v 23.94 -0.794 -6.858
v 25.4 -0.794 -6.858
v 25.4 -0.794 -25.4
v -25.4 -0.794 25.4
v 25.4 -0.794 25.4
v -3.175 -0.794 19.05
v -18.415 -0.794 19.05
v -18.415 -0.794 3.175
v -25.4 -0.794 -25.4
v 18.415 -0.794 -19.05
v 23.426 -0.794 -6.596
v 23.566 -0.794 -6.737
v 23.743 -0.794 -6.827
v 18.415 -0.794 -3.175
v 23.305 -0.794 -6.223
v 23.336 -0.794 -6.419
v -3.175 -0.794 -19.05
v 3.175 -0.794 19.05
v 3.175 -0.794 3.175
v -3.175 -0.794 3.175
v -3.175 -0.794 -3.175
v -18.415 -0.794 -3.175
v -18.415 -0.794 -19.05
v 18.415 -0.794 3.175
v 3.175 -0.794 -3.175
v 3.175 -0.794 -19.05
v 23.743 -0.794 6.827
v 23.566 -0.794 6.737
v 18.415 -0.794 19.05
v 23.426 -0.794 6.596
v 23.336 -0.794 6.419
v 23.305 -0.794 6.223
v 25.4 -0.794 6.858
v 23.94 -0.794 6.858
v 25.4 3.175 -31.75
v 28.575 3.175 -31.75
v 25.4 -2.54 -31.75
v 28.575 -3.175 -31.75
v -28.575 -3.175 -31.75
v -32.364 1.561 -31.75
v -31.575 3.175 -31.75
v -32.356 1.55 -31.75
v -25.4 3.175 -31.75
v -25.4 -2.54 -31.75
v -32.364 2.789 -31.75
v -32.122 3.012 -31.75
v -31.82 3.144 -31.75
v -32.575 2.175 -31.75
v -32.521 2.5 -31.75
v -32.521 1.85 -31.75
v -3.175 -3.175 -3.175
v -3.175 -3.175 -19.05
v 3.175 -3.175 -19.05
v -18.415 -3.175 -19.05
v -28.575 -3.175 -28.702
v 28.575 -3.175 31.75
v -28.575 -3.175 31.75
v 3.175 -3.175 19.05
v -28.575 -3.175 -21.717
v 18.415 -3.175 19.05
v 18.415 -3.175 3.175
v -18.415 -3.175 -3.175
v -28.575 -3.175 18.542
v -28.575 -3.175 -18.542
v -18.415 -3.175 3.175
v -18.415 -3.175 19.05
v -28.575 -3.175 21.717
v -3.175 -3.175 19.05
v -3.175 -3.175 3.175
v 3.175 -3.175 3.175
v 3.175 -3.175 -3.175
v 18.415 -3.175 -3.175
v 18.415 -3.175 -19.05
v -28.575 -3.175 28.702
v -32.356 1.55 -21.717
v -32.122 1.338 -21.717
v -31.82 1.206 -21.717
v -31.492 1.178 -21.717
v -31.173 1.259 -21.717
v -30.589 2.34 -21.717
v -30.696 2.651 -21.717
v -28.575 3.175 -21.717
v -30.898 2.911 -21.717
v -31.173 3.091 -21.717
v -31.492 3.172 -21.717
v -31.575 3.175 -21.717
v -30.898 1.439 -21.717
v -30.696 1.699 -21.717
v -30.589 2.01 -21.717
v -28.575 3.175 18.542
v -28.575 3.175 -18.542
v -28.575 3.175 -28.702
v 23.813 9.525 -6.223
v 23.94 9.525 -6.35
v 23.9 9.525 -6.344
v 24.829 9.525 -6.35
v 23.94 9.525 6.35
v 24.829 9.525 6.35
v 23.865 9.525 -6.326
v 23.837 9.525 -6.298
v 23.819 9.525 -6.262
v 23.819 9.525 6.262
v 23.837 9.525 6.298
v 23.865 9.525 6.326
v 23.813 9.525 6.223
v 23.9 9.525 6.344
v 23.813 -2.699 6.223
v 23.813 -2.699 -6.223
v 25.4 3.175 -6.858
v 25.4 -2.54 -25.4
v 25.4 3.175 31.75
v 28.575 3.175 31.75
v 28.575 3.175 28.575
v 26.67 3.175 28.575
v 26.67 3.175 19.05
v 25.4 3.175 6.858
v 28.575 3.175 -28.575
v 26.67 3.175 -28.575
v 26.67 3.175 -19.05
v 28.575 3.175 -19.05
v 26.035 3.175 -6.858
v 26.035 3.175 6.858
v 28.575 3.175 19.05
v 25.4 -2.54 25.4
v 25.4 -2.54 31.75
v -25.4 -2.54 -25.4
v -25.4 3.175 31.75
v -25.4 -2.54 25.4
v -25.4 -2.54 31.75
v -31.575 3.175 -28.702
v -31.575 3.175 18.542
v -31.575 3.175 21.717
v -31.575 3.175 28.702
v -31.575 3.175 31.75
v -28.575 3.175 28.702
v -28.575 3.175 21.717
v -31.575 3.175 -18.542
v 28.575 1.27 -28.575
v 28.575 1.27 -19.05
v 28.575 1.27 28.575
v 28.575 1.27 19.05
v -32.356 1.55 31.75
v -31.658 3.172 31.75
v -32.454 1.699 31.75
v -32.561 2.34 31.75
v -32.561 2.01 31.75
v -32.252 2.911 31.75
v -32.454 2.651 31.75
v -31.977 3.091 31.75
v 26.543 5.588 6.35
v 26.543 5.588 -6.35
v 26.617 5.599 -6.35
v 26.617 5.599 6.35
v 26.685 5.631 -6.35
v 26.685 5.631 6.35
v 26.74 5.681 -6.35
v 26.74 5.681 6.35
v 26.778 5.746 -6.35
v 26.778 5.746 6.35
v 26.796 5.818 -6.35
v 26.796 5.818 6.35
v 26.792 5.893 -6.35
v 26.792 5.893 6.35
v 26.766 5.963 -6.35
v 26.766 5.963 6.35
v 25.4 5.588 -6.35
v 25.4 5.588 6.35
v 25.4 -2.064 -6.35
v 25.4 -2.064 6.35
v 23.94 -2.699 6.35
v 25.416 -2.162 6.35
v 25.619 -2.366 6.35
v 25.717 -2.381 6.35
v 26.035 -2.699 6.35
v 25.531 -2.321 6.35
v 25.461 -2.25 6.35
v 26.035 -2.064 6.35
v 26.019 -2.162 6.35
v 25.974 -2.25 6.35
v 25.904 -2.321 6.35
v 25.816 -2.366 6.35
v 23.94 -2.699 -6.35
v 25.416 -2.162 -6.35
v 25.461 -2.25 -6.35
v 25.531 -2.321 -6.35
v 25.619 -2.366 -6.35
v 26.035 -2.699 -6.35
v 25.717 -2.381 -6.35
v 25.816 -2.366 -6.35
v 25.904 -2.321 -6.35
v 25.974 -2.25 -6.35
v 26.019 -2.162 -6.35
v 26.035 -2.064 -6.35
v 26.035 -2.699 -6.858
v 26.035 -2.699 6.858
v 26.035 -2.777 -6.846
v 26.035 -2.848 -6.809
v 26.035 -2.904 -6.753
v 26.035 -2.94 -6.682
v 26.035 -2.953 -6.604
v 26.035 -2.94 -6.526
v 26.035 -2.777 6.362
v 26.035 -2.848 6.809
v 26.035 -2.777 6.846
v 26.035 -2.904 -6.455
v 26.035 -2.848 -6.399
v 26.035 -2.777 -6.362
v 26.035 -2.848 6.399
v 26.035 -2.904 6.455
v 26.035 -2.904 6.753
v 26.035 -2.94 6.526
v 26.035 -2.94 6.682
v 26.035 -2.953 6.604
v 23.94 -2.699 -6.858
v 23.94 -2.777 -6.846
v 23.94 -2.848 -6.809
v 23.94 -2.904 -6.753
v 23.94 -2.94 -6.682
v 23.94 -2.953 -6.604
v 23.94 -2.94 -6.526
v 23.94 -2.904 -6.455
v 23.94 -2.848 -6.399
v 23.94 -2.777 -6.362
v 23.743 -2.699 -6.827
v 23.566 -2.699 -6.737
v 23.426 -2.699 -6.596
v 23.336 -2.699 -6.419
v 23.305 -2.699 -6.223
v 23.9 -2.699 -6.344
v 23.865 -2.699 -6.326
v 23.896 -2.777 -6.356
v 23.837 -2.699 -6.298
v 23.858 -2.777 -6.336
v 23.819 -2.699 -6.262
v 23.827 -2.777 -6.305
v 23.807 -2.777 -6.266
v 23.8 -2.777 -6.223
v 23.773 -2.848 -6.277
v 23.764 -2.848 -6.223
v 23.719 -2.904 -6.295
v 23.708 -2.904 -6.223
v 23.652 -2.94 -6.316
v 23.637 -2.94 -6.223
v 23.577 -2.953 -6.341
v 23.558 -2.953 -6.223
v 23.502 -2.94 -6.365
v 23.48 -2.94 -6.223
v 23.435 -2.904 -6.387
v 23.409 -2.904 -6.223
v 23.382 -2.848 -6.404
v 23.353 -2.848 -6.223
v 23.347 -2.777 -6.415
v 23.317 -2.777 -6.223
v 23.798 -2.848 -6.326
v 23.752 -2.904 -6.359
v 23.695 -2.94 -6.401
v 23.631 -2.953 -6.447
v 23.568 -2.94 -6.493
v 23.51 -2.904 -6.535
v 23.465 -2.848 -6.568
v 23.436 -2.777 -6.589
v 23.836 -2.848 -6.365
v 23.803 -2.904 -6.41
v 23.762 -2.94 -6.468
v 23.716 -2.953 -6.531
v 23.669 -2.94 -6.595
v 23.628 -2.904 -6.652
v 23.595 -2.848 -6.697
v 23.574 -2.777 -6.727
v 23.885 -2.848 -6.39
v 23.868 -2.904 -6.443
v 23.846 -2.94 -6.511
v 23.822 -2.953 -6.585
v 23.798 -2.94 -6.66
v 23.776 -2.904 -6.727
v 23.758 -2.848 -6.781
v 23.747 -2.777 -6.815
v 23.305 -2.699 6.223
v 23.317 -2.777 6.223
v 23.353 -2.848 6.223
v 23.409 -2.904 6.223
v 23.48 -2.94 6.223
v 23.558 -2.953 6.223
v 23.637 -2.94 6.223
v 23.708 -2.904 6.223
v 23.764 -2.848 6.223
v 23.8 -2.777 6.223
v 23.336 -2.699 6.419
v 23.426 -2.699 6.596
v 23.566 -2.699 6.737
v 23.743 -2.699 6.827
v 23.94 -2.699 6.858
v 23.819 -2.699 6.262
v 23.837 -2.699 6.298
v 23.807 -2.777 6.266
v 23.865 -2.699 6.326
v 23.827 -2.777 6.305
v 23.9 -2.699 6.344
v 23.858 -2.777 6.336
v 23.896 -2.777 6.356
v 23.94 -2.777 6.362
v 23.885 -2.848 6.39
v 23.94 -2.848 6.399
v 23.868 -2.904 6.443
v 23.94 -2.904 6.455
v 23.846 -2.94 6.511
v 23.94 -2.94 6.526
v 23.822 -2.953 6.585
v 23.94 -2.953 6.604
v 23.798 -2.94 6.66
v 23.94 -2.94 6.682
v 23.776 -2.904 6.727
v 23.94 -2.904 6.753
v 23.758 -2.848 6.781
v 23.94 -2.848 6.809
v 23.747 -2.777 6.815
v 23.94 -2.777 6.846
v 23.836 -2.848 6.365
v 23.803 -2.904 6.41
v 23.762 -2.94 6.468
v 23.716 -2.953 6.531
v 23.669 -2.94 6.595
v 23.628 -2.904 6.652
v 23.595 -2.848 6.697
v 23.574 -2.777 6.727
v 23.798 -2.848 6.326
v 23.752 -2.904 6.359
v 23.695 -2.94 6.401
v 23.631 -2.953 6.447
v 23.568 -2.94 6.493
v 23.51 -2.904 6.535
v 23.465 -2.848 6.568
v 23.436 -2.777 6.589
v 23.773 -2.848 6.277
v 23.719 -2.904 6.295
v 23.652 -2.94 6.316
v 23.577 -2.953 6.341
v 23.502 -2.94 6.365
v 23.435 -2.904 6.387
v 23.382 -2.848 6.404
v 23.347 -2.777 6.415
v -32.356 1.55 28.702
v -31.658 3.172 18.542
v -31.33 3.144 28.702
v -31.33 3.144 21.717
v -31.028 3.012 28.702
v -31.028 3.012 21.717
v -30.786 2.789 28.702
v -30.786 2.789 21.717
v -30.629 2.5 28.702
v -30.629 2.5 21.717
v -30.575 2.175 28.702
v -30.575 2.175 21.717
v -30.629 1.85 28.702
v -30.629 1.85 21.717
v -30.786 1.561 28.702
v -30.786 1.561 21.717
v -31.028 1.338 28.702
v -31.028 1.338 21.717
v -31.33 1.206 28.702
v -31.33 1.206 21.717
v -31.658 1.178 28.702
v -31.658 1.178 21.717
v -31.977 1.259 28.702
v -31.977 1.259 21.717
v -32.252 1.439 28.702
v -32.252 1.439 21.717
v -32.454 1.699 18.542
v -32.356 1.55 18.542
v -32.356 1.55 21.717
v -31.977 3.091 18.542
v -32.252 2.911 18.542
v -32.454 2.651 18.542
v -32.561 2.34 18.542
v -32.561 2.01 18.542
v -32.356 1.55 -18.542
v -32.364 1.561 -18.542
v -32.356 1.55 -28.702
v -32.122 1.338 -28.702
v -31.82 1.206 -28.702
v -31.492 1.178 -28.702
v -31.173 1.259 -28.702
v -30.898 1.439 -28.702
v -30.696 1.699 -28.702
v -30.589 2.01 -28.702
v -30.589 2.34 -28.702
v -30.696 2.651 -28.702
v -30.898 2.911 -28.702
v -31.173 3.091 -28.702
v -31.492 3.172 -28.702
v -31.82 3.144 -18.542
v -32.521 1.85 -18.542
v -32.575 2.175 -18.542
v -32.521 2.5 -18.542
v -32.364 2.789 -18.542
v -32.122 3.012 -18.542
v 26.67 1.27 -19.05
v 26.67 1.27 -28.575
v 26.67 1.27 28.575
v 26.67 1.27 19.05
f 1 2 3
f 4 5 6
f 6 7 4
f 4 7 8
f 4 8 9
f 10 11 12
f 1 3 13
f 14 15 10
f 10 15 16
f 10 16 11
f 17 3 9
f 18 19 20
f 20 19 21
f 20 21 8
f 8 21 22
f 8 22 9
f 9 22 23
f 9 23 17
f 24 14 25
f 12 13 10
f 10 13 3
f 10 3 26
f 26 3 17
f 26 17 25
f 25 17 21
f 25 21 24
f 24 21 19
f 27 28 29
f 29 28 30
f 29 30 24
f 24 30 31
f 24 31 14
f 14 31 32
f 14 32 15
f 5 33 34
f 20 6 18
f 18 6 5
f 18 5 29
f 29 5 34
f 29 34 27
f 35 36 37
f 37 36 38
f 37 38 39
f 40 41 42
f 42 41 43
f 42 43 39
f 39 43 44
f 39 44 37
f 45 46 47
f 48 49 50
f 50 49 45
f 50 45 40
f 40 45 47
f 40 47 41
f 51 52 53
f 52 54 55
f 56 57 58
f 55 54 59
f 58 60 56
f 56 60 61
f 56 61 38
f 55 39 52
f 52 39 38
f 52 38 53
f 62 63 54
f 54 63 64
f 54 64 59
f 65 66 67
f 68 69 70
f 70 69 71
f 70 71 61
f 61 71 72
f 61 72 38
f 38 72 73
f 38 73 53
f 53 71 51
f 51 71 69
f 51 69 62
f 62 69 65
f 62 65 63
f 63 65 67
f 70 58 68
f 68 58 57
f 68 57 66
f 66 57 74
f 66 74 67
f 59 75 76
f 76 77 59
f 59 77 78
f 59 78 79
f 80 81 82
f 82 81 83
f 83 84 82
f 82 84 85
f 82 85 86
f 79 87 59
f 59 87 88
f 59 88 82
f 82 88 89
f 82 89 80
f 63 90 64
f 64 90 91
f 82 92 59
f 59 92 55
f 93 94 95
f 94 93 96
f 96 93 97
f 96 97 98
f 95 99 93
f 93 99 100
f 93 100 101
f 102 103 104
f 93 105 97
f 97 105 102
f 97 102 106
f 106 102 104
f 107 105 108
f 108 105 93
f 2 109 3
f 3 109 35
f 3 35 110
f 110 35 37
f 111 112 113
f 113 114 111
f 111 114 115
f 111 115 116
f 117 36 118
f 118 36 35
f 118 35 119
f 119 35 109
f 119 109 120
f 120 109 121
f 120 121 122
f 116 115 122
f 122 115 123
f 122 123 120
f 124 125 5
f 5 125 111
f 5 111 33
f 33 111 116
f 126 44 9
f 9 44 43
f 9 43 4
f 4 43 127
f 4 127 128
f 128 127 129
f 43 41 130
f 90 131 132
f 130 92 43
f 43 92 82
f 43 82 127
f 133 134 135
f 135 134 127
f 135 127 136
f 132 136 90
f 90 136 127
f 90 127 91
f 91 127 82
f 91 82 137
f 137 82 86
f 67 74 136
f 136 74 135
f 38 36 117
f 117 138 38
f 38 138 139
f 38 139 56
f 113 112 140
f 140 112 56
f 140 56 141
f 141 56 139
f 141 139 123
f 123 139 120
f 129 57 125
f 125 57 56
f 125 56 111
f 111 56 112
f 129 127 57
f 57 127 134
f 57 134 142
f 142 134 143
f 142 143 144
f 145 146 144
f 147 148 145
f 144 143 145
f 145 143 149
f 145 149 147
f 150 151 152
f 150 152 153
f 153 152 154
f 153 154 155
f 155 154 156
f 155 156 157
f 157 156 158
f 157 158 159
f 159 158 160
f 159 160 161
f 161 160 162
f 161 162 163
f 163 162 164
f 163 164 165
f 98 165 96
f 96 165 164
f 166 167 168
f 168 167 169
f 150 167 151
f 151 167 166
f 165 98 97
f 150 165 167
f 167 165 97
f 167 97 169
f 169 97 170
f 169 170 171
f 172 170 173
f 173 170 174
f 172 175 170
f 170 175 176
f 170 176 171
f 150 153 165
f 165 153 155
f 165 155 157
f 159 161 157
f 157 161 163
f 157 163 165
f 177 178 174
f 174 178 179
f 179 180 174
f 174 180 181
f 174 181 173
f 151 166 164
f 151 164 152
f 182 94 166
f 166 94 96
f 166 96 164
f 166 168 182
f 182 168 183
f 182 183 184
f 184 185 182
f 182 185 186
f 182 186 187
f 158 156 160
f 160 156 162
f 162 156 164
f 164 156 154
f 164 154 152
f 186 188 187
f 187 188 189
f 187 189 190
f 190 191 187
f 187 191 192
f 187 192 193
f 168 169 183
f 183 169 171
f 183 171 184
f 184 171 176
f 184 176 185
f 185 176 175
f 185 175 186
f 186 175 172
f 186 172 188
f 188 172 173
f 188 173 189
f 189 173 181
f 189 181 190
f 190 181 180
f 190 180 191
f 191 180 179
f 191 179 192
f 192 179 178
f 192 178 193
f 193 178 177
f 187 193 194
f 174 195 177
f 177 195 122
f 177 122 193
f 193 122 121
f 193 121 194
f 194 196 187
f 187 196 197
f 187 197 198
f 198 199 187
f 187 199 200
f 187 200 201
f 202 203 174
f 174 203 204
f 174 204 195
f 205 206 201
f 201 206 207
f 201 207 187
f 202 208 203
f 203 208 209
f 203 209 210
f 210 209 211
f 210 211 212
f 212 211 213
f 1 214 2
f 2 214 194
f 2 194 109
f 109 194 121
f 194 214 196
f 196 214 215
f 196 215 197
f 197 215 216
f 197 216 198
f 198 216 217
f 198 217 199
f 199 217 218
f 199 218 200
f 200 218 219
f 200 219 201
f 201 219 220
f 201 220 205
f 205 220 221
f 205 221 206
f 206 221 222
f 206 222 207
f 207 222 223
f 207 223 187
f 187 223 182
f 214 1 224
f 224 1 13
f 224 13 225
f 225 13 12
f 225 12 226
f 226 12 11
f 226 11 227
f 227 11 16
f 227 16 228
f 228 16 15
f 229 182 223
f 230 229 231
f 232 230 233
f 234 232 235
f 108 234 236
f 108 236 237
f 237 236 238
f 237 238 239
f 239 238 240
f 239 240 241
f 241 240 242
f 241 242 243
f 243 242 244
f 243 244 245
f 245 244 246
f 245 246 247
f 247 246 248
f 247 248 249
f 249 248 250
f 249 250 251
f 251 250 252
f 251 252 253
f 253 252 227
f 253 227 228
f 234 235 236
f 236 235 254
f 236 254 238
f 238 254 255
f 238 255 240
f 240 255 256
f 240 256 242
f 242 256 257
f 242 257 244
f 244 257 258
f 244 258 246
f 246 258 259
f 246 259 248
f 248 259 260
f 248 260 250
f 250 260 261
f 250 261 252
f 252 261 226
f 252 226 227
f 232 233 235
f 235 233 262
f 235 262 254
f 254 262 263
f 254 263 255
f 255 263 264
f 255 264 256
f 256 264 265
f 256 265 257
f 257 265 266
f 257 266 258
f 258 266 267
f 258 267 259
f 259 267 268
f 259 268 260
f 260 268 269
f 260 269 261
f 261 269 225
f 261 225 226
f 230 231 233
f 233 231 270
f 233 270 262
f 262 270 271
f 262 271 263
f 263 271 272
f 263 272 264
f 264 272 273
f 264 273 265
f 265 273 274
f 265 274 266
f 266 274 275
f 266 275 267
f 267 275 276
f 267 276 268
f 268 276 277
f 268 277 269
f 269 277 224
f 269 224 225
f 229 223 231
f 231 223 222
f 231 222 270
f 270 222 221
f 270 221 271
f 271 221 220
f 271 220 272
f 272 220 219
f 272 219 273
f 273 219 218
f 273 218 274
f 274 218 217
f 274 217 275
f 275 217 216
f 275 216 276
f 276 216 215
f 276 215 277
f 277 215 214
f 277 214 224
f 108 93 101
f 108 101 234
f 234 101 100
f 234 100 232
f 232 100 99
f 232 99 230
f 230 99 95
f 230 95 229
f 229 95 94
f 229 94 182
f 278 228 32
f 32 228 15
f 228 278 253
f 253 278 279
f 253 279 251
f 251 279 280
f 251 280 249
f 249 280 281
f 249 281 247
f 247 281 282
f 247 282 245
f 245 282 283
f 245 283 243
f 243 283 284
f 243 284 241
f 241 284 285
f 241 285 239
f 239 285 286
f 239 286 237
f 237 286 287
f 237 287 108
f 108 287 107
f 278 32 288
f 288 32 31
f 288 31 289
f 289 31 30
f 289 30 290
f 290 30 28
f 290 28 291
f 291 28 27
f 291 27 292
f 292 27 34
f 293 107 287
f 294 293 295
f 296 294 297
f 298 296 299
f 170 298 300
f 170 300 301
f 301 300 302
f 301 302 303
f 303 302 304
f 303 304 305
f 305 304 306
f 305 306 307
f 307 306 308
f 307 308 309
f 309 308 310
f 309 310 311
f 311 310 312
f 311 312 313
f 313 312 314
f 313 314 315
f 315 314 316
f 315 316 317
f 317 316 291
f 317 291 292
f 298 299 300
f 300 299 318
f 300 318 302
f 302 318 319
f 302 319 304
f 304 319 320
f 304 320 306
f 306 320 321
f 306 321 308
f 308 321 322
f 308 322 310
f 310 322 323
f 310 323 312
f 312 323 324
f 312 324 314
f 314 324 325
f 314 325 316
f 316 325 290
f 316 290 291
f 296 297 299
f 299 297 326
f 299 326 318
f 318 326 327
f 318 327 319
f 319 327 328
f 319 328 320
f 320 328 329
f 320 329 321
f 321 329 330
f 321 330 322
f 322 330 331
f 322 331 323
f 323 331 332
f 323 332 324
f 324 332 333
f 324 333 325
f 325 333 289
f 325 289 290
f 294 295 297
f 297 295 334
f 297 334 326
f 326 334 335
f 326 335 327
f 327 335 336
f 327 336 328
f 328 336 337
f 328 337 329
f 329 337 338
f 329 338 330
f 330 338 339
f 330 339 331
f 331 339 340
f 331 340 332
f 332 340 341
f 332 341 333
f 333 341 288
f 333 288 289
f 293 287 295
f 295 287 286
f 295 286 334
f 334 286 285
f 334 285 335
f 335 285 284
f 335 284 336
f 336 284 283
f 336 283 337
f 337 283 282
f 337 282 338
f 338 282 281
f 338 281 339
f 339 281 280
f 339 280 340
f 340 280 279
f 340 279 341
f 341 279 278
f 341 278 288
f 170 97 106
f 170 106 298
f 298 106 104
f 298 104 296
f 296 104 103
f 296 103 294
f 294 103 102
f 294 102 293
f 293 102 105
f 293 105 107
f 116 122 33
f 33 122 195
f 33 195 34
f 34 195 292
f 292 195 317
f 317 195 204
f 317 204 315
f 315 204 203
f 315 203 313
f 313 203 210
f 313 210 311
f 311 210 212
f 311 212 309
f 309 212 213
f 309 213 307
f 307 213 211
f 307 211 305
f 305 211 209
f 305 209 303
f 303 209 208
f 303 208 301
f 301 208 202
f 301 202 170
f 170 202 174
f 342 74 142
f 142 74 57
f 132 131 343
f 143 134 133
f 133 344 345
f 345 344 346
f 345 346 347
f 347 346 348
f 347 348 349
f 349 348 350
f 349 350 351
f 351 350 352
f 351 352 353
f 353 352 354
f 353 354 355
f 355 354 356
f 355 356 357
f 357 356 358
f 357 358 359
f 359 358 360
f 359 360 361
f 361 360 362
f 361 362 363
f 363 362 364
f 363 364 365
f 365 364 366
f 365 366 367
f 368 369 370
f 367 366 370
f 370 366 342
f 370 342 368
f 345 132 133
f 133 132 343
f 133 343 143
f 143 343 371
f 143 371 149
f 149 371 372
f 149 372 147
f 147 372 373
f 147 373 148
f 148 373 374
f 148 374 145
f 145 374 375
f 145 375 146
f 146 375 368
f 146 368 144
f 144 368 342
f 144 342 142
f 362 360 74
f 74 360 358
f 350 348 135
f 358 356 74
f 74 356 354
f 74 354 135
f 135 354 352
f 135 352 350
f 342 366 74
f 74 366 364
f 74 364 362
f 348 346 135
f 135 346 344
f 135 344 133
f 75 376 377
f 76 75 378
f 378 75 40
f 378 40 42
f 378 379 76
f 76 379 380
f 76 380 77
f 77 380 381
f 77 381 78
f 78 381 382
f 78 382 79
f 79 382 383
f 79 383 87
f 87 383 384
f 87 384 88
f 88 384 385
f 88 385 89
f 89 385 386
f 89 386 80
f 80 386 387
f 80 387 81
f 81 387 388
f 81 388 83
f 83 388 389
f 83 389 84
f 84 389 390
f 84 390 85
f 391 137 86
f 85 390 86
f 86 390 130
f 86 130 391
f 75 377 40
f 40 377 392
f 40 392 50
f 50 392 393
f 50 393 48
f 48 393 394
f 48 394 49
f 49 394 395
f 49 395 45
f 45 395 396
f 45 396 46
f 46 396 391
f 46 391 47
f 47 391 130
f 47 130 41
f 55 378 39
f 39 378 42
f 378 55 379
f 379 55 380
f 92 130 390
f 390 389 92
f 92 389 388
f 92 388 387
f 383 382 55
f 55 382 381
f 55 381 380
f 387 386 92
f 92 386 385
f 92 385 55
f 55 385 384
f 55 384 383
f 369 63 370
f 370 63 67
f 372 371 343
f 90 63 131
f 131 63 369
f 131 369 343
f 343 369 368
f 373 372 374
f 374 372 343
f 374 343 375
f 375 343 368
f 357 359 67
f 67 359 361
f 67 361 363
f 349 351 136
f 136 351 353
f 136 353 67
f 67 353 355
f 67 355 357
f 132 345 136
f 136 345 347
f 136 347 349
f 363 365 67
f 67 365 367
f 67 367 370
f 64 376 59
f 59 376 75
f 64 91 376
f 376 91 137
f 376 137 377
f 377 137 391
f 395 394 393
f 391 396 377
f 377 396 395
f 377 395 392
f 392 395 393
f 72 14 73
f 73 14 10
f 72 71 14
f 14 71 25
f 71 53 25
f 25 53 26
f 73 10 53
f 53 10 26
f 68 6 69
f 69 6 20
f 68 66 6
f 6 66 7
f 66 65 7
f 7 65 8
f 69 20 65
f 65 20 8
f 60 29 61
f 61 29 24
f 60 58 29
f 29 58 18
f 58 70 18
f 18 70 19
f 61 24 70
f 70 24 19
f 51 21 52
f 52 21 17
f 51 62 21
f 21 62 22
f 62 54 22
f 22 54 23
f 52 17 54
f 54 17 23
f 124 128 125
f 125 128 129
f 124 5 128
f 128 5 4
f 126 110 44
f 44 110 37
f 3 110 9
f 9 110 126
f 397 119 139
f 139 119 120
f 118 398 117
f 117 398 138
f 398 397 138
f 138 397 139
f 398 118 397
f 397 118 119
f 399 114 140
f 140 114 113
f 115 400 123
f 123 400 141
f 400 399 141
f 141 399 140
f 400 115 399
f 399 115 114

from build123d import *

# Parameters (mm, degrees)
BOSS_EXTRUDE1_DEPTH     = 31.75
BOSS_EXTRUDE2_DEPTH     = 6.35
CUT_EXTRUDE2_DEPTH      = 6.4135
BOSS_EXTRUDE3_START     = 28.702
BOSS_EXTRUDE3_DEPTH     = 3.048
BOSS_EXTRUDE5_START     = -31.75
BOSS_EXTRUDE5_DEPTH     = 3.048
BOSS_EXTRUDE7_START     = 21.717
BOSS_EXTRUDE7_DEPTH     = 3.175
BOSS_EXTRUDE8_START     = -21.717
BOSS_EXTRUDE8_DEPTH     = 3.175
BOSS_EXTRUDE6_START     = 31.75
BOSS_EXTRUDE6_DEPTH     = 13.208
BOSS_EXTRUDE9_START     = -31.75
BOSS_EXTRUDE9_DEPTH     = 13.208
SKETCH3_W               = 15.24
SKETCH3_H               = 15.875
CUT_EXTRUDE4_DEPTH      = 11.31875
CUT_EXTRUDE4_DEPTH_BACK = 3.38125
SKETCH5_W               = 50.8
SKETCH5_H               = 1.74625
CUT_EXTRUDE6_DEPTH      = 6.35
SKETCH6_W               = 9.525
SKETCH6_H               = 1.905
CUT_EXTRUDE7_DEPTH      = 1.905


with BuildPart() as part:
    # Sketch1 → Boss-Extrude1 (new body, symmetric)
    with BuildSketch(Plane.XY):
        Polygon((-25.4, -0.79375), (-25.4, 3.175), (-28.575, 3.175), (-28.575, -3.175), (28.575, -3.175), (28.575, 3.175), (25.4, 3.175), (25.4, -0.79375), align=None)
    extrude(amount=BOSS_EXTRUDE1_DEPTH, both=True)

    # Sketch1<3> → Boss-Extrude2 (add, symmetric)
    with BuildSketch(Plane.XY):
        with BuildLine():
            Line((23.8125, 9.525), (23.8125, -0.79375))
            Line((23.8125, -0.79375), (25.4, -0.79375))
            Line((25.4, -0.79375), (25.4, 5.588))
            Line((25.4, 5.588), (26.543, 5.588))
            ThreePointArc((26.543, 5.588), (26.761343, 5.712222), (26.766119, 5.963383))
            Line((26.766119, 5.963383), (24.8285, 9.525))
            Line((24.8285, 9.525), (23.8125, 9.525))
        make_face()
    extrude(amount=BOSS_EXTRUDE2_DEPTH, both=True)

    # Sketch1<6> → Cut-Extrude2 (cut, symmetric)
    with BuildSketch(Plane.XY):
        with BuildLine():
            Line((26.035, 3.175), (25.4, 3.175))
            Line((25.4, 3.175), (25.4, -0.79375))
            Line((25.4, -0.79375), (25.4, -2.06375))
            ThreePointArc((25.4, -2.06375), (25.7175, -2.38125), (26.035, -2.06375))
            Line((26.035, -2.06375), (26.035, 3.175))
        make_face()
    extrude(amount=CUT_EXTRUDE2_DEPTH, both=True, mode=Mode.SUBTRACT)

    # Cut-Sweep1: sweep along a path in Sketch7
    with BuildLine(Plane(origin=(0, -0.79375, 0), x_dir=(1, 0, 0), z_dir=(0, 1, 0))) as cut_sweep1_path:
        Line((26.035, 6.35), (23.9395, 6.35))
        ThreePointArc((23.9395, 6.35), (23.849697, 6.312803), (23.8125, 6.223))
        Line((23.8125, 6.223), (23.8125, -6.223))
        ThreePointArc((23.8125, -6.223), (23.849697, -6.312803), (23.9395, -6.35))
        Line((23.9395, -6.35), (26.035, -6.35))
    # Sketch8 → Cut-Sweep1 (sweep, cut)
    with BuildSketch(Plane(origin=(26.035, 0, 0), x_dir=(0, 0, -1), z_dir=(1, 0, 0))):
        with BuildLine():
            Line((-6.858, -2.69875), (-6.858, 9.525))
            Line((-6.858, 9.525), (-6.35, 9.525))
            Line((-6.35, 9.525), (-6.35, -2.69875))
            ThreePointArc((-6.35, -2.69875), (-6.604, -2.95275), (-6.858, -2.69875))
        make_face()
    sweep(path=cut_sweep1_path.line, mode=Mode.SUBTRACT)

    # Sketch1<7> → Boss-Extrude3 (add)
    with BuildSketch(Plane.XY.offset(BOSS_EXTRUDE3_START)):
        with BuildLine():
            ThreePointArc((-32.355812, 1.550246), (-32.476313, 2.608154), (-31.574994, 3.175))
            Line((-31.574994, 3.175), (-28.575, 3.175))
            Line((-28.575, 3.175), (-28.575, -3.175))
            Line((-28.575, -3.175), (-32.355812, 1.550246))
        make_face()
        with BuildLine():
            ThreePointArc((-30.574996, 2.175002), (-30.867889, 2.882107), (-31.574994, 3.175))
            ThreePointArc((-31.574994, 3.175), (-32.476313, 2.608154), (-32.355812, 1.550246))
            ThreePointArc((-32.355812, 1.550246), (-31.24395, 1.231389), (-30.574996, 2.175002))
        make_face()
    extrude(amount=BOSS_EXTRUDE3_DEPTH)

    # Sketch1<9> → Boss-Extrude5 (add)
    with BuildSketch(Plane.XY.offset(BOSS_EXTRUDE5_START)):
        with BuildLine():
            ThreePointArc((-32.355812, 1.550246), (-32.476313, 2.608154), (-31.574994, 3.175))
            Line((-31.574994, 3.175), (-28.575, 3.175))
            Line((-28.575, 3.175), (-28.575, -3.175))
            Line((-28.575, -3.175), (-32.355812, 1.550246))
        make_face()
        with BuildLine():
            ThreePointArc((-30.574996, 2.175002), (-30.867889, 2.882107), (-31.574994, 3.175))
            ThreePointArc((-31.574994, 3.175), (-32.476313, 2.608154), (-32.355812, 1.550246))
            ThreePointArc((-32.355812, 1.550246), (-31.24395, 1.231389), (-30.574996, 2.175002))
        make_face()
    extrude(amount=BOSS_EXTRUDE5_DEPTH)

    # Sketch1<13> → Boss-Extrude7 (add)
    with BuildSketch(Plane.XY.offset(BOSS_EXTRUDE7_START)):
        with BuildLine():
            Line((-28.575, -3.175), (-28.575, 3.175))
            Line((-28.575, 3.175), (-31.574994, 3.175))
            ThreePointArc((-31.574994, 3.175), (-30.867889, 2.882107), (-30.574996, 2.175002))
            ThreePointArc((-30.574996, 2.175002), (-31.24395, 1.231389), (-32.355812, 1.550246))
            Line((-32.355812, 1.550246), (-28.575, -3.175))
        make_face()
        with BuildLine():
            ThreePointArc((-30.574996, 2.175002), (-30.867889, 2.882107), (-31.574994, 3.175))
            ThreePointArc((-31.574994, 3.175), (-32.476313, 2.608154), (-32.355812, 1.550246))
            ThreePointArc((-32.355812, 1.550246), (-31.24395, 1.231389), (-30.574996, 2.175002))
        make_face()
    extrude(amount=-BOSS_EXTRUDE7_DEPTH)

    # Sketch1<14> → Boss-Extrude8 (add)
    with BuildSketch(Plane.XY.offset(BOSS_EXTRUDE8_START)):
        with BuildLine():
            Line((-28.575, -3.175), (-28.575, 3.175))
            Line((-28.575, 3.175), (-31.574994, 3.175))
            ThreePointArc((-31.574994, 3.175), (-30.867889, 2.882107), (-30.574996, 2.175002))
            ThreePointArc((-30.574996, 2.175002), (-31.24395, 1.231389), (-32.355812, 1.550246))
            Line((-32.355812, 1.550246), (-28.575, -3.175))
        make_face()
        with BuildLine():
            ThreePointArc((-30.574996, 2.175002), (-30.867889, 2.882107), (-31.574994, 3.175))
            ThreePointArc((-31.574994, 3.175), (-32.476313, 2.608154), (-32.355812, 1.550246))
            ThreePointArc((-32.355812, 1.550246), (-31.24395, 1.231389), (-30.574996, 2.175002))
        make_face()
    extrude(amount=BOSS_EXTRUDE8_DEPTH)

    # Sketch1<10> → Boss-Extrude6 (add)
    with BuildSketch(Plane.XY.offset(BOSS_EXTRUDE6_START)):
        with BuildLine():
            ThreePointArc((-30.574996, 2.175002), (-30.867889, 2.882107), (-31.574994, 3.175))
            ThreePointArc((-31.574994, 3.175), (-32.476313, 2.608154), (-32.355812, 1.550246))
            ThreePointArc((-32.355812, 1.550246), (-31.24395, 1.231389), (-30.574996, 2.175002))
        make_face()
    extrude(amount=-BOSS_EXTRUDE6_DEPTH)

    # Sketch1<16> → Boss-Extrude9 (add)
    with BuildSketch(Plane.XY.offset(BOSS_EXTRUDE9_START)):
        with BuildLine():
            ThreePointArc((-30.574996, 2.175002), (-30.867889, 2.882107), (-31.574994, 3.175))
            ThreePointArc((-31.574994, 3.175), (-32.476313, 2.608154), (-32.355812, 1.550246))
            ThreePointArc((-32.355812, 1.550246), (-31.24395, 1.231389), (-30.574996, 2.175002))
        make_face()
    extrude(amount=BOSS_EXTRUDE9_DEPTH)

    # Sketch3 → Cut-Extrude4 (cut, two sides)
    with BuildSketch(Plane(origin=(0, -0.79375, 0), x_dir=(1, 0, 0), z_dir=(0, 1, 0))) as cut_extrude4_sk:
        with Locations((10.795, 11.1125)):
            Rectangle(SKETCH3_W, SKETCH3_H)
        with Locations((-10.795, 11.1125)):
            Rectangle(SKETCH3_W, SKETCH3_H)
        with Locations((10.795, -11.1125)):
            Rectangle(SKETCH3_W, SKETCH3_H)
        with Locations((-10.795, -11.1125)):
            Rectangle(SKETCH3_W, SKETCH3_H)
    extrude(amount=CUT_EXTRUDE4_DEPTH, mode=Mode.SUBTRACT)
    extrude(cut_extrude4_sk.sketch, amount=-CUT_EXTRUDE4_DEPTH_BACK, mode=Mode.SUBTRACT)

    # Sketch5 → Cut-Extrude6 (cut)
    with BuildSketch(Plane.XY.offset(31.75)):
        with Locations((0, -1.666875)):
            Rectangle(SKETCH5_W, SKETCH5_H)
    cut_extrude6 = extrude(amount=-CUT_EXTRUDE6_DEPTH, mode=Mode.SUBTRACT)

    # Mirror1: Cut-Extrude6 across plane
    add(cut_extrude6.mirror(Plane.XY), mode=Mode.SUBTRACT)

    # Sketch6 → Cut-Extrude7 (cut)
    with BuildSketch(Plane(origin=(28.575, 0, 0), x_dir=(0, 0, -1), z_dir=(1, 0, 0))):
        with Locations((-23.8125, 2.2225)):
            Rectangle(SKETCH6_W, SKETCH6_H)
        with Locations((23.8125, 2.2225)):
            Rectangle(SKETCH6_W, SKETCH6_H)
    extrude(amount=-CUT_EXTRUDE7_DEPTH, mode=Mode.SUBTRACT)


solid = part.part
